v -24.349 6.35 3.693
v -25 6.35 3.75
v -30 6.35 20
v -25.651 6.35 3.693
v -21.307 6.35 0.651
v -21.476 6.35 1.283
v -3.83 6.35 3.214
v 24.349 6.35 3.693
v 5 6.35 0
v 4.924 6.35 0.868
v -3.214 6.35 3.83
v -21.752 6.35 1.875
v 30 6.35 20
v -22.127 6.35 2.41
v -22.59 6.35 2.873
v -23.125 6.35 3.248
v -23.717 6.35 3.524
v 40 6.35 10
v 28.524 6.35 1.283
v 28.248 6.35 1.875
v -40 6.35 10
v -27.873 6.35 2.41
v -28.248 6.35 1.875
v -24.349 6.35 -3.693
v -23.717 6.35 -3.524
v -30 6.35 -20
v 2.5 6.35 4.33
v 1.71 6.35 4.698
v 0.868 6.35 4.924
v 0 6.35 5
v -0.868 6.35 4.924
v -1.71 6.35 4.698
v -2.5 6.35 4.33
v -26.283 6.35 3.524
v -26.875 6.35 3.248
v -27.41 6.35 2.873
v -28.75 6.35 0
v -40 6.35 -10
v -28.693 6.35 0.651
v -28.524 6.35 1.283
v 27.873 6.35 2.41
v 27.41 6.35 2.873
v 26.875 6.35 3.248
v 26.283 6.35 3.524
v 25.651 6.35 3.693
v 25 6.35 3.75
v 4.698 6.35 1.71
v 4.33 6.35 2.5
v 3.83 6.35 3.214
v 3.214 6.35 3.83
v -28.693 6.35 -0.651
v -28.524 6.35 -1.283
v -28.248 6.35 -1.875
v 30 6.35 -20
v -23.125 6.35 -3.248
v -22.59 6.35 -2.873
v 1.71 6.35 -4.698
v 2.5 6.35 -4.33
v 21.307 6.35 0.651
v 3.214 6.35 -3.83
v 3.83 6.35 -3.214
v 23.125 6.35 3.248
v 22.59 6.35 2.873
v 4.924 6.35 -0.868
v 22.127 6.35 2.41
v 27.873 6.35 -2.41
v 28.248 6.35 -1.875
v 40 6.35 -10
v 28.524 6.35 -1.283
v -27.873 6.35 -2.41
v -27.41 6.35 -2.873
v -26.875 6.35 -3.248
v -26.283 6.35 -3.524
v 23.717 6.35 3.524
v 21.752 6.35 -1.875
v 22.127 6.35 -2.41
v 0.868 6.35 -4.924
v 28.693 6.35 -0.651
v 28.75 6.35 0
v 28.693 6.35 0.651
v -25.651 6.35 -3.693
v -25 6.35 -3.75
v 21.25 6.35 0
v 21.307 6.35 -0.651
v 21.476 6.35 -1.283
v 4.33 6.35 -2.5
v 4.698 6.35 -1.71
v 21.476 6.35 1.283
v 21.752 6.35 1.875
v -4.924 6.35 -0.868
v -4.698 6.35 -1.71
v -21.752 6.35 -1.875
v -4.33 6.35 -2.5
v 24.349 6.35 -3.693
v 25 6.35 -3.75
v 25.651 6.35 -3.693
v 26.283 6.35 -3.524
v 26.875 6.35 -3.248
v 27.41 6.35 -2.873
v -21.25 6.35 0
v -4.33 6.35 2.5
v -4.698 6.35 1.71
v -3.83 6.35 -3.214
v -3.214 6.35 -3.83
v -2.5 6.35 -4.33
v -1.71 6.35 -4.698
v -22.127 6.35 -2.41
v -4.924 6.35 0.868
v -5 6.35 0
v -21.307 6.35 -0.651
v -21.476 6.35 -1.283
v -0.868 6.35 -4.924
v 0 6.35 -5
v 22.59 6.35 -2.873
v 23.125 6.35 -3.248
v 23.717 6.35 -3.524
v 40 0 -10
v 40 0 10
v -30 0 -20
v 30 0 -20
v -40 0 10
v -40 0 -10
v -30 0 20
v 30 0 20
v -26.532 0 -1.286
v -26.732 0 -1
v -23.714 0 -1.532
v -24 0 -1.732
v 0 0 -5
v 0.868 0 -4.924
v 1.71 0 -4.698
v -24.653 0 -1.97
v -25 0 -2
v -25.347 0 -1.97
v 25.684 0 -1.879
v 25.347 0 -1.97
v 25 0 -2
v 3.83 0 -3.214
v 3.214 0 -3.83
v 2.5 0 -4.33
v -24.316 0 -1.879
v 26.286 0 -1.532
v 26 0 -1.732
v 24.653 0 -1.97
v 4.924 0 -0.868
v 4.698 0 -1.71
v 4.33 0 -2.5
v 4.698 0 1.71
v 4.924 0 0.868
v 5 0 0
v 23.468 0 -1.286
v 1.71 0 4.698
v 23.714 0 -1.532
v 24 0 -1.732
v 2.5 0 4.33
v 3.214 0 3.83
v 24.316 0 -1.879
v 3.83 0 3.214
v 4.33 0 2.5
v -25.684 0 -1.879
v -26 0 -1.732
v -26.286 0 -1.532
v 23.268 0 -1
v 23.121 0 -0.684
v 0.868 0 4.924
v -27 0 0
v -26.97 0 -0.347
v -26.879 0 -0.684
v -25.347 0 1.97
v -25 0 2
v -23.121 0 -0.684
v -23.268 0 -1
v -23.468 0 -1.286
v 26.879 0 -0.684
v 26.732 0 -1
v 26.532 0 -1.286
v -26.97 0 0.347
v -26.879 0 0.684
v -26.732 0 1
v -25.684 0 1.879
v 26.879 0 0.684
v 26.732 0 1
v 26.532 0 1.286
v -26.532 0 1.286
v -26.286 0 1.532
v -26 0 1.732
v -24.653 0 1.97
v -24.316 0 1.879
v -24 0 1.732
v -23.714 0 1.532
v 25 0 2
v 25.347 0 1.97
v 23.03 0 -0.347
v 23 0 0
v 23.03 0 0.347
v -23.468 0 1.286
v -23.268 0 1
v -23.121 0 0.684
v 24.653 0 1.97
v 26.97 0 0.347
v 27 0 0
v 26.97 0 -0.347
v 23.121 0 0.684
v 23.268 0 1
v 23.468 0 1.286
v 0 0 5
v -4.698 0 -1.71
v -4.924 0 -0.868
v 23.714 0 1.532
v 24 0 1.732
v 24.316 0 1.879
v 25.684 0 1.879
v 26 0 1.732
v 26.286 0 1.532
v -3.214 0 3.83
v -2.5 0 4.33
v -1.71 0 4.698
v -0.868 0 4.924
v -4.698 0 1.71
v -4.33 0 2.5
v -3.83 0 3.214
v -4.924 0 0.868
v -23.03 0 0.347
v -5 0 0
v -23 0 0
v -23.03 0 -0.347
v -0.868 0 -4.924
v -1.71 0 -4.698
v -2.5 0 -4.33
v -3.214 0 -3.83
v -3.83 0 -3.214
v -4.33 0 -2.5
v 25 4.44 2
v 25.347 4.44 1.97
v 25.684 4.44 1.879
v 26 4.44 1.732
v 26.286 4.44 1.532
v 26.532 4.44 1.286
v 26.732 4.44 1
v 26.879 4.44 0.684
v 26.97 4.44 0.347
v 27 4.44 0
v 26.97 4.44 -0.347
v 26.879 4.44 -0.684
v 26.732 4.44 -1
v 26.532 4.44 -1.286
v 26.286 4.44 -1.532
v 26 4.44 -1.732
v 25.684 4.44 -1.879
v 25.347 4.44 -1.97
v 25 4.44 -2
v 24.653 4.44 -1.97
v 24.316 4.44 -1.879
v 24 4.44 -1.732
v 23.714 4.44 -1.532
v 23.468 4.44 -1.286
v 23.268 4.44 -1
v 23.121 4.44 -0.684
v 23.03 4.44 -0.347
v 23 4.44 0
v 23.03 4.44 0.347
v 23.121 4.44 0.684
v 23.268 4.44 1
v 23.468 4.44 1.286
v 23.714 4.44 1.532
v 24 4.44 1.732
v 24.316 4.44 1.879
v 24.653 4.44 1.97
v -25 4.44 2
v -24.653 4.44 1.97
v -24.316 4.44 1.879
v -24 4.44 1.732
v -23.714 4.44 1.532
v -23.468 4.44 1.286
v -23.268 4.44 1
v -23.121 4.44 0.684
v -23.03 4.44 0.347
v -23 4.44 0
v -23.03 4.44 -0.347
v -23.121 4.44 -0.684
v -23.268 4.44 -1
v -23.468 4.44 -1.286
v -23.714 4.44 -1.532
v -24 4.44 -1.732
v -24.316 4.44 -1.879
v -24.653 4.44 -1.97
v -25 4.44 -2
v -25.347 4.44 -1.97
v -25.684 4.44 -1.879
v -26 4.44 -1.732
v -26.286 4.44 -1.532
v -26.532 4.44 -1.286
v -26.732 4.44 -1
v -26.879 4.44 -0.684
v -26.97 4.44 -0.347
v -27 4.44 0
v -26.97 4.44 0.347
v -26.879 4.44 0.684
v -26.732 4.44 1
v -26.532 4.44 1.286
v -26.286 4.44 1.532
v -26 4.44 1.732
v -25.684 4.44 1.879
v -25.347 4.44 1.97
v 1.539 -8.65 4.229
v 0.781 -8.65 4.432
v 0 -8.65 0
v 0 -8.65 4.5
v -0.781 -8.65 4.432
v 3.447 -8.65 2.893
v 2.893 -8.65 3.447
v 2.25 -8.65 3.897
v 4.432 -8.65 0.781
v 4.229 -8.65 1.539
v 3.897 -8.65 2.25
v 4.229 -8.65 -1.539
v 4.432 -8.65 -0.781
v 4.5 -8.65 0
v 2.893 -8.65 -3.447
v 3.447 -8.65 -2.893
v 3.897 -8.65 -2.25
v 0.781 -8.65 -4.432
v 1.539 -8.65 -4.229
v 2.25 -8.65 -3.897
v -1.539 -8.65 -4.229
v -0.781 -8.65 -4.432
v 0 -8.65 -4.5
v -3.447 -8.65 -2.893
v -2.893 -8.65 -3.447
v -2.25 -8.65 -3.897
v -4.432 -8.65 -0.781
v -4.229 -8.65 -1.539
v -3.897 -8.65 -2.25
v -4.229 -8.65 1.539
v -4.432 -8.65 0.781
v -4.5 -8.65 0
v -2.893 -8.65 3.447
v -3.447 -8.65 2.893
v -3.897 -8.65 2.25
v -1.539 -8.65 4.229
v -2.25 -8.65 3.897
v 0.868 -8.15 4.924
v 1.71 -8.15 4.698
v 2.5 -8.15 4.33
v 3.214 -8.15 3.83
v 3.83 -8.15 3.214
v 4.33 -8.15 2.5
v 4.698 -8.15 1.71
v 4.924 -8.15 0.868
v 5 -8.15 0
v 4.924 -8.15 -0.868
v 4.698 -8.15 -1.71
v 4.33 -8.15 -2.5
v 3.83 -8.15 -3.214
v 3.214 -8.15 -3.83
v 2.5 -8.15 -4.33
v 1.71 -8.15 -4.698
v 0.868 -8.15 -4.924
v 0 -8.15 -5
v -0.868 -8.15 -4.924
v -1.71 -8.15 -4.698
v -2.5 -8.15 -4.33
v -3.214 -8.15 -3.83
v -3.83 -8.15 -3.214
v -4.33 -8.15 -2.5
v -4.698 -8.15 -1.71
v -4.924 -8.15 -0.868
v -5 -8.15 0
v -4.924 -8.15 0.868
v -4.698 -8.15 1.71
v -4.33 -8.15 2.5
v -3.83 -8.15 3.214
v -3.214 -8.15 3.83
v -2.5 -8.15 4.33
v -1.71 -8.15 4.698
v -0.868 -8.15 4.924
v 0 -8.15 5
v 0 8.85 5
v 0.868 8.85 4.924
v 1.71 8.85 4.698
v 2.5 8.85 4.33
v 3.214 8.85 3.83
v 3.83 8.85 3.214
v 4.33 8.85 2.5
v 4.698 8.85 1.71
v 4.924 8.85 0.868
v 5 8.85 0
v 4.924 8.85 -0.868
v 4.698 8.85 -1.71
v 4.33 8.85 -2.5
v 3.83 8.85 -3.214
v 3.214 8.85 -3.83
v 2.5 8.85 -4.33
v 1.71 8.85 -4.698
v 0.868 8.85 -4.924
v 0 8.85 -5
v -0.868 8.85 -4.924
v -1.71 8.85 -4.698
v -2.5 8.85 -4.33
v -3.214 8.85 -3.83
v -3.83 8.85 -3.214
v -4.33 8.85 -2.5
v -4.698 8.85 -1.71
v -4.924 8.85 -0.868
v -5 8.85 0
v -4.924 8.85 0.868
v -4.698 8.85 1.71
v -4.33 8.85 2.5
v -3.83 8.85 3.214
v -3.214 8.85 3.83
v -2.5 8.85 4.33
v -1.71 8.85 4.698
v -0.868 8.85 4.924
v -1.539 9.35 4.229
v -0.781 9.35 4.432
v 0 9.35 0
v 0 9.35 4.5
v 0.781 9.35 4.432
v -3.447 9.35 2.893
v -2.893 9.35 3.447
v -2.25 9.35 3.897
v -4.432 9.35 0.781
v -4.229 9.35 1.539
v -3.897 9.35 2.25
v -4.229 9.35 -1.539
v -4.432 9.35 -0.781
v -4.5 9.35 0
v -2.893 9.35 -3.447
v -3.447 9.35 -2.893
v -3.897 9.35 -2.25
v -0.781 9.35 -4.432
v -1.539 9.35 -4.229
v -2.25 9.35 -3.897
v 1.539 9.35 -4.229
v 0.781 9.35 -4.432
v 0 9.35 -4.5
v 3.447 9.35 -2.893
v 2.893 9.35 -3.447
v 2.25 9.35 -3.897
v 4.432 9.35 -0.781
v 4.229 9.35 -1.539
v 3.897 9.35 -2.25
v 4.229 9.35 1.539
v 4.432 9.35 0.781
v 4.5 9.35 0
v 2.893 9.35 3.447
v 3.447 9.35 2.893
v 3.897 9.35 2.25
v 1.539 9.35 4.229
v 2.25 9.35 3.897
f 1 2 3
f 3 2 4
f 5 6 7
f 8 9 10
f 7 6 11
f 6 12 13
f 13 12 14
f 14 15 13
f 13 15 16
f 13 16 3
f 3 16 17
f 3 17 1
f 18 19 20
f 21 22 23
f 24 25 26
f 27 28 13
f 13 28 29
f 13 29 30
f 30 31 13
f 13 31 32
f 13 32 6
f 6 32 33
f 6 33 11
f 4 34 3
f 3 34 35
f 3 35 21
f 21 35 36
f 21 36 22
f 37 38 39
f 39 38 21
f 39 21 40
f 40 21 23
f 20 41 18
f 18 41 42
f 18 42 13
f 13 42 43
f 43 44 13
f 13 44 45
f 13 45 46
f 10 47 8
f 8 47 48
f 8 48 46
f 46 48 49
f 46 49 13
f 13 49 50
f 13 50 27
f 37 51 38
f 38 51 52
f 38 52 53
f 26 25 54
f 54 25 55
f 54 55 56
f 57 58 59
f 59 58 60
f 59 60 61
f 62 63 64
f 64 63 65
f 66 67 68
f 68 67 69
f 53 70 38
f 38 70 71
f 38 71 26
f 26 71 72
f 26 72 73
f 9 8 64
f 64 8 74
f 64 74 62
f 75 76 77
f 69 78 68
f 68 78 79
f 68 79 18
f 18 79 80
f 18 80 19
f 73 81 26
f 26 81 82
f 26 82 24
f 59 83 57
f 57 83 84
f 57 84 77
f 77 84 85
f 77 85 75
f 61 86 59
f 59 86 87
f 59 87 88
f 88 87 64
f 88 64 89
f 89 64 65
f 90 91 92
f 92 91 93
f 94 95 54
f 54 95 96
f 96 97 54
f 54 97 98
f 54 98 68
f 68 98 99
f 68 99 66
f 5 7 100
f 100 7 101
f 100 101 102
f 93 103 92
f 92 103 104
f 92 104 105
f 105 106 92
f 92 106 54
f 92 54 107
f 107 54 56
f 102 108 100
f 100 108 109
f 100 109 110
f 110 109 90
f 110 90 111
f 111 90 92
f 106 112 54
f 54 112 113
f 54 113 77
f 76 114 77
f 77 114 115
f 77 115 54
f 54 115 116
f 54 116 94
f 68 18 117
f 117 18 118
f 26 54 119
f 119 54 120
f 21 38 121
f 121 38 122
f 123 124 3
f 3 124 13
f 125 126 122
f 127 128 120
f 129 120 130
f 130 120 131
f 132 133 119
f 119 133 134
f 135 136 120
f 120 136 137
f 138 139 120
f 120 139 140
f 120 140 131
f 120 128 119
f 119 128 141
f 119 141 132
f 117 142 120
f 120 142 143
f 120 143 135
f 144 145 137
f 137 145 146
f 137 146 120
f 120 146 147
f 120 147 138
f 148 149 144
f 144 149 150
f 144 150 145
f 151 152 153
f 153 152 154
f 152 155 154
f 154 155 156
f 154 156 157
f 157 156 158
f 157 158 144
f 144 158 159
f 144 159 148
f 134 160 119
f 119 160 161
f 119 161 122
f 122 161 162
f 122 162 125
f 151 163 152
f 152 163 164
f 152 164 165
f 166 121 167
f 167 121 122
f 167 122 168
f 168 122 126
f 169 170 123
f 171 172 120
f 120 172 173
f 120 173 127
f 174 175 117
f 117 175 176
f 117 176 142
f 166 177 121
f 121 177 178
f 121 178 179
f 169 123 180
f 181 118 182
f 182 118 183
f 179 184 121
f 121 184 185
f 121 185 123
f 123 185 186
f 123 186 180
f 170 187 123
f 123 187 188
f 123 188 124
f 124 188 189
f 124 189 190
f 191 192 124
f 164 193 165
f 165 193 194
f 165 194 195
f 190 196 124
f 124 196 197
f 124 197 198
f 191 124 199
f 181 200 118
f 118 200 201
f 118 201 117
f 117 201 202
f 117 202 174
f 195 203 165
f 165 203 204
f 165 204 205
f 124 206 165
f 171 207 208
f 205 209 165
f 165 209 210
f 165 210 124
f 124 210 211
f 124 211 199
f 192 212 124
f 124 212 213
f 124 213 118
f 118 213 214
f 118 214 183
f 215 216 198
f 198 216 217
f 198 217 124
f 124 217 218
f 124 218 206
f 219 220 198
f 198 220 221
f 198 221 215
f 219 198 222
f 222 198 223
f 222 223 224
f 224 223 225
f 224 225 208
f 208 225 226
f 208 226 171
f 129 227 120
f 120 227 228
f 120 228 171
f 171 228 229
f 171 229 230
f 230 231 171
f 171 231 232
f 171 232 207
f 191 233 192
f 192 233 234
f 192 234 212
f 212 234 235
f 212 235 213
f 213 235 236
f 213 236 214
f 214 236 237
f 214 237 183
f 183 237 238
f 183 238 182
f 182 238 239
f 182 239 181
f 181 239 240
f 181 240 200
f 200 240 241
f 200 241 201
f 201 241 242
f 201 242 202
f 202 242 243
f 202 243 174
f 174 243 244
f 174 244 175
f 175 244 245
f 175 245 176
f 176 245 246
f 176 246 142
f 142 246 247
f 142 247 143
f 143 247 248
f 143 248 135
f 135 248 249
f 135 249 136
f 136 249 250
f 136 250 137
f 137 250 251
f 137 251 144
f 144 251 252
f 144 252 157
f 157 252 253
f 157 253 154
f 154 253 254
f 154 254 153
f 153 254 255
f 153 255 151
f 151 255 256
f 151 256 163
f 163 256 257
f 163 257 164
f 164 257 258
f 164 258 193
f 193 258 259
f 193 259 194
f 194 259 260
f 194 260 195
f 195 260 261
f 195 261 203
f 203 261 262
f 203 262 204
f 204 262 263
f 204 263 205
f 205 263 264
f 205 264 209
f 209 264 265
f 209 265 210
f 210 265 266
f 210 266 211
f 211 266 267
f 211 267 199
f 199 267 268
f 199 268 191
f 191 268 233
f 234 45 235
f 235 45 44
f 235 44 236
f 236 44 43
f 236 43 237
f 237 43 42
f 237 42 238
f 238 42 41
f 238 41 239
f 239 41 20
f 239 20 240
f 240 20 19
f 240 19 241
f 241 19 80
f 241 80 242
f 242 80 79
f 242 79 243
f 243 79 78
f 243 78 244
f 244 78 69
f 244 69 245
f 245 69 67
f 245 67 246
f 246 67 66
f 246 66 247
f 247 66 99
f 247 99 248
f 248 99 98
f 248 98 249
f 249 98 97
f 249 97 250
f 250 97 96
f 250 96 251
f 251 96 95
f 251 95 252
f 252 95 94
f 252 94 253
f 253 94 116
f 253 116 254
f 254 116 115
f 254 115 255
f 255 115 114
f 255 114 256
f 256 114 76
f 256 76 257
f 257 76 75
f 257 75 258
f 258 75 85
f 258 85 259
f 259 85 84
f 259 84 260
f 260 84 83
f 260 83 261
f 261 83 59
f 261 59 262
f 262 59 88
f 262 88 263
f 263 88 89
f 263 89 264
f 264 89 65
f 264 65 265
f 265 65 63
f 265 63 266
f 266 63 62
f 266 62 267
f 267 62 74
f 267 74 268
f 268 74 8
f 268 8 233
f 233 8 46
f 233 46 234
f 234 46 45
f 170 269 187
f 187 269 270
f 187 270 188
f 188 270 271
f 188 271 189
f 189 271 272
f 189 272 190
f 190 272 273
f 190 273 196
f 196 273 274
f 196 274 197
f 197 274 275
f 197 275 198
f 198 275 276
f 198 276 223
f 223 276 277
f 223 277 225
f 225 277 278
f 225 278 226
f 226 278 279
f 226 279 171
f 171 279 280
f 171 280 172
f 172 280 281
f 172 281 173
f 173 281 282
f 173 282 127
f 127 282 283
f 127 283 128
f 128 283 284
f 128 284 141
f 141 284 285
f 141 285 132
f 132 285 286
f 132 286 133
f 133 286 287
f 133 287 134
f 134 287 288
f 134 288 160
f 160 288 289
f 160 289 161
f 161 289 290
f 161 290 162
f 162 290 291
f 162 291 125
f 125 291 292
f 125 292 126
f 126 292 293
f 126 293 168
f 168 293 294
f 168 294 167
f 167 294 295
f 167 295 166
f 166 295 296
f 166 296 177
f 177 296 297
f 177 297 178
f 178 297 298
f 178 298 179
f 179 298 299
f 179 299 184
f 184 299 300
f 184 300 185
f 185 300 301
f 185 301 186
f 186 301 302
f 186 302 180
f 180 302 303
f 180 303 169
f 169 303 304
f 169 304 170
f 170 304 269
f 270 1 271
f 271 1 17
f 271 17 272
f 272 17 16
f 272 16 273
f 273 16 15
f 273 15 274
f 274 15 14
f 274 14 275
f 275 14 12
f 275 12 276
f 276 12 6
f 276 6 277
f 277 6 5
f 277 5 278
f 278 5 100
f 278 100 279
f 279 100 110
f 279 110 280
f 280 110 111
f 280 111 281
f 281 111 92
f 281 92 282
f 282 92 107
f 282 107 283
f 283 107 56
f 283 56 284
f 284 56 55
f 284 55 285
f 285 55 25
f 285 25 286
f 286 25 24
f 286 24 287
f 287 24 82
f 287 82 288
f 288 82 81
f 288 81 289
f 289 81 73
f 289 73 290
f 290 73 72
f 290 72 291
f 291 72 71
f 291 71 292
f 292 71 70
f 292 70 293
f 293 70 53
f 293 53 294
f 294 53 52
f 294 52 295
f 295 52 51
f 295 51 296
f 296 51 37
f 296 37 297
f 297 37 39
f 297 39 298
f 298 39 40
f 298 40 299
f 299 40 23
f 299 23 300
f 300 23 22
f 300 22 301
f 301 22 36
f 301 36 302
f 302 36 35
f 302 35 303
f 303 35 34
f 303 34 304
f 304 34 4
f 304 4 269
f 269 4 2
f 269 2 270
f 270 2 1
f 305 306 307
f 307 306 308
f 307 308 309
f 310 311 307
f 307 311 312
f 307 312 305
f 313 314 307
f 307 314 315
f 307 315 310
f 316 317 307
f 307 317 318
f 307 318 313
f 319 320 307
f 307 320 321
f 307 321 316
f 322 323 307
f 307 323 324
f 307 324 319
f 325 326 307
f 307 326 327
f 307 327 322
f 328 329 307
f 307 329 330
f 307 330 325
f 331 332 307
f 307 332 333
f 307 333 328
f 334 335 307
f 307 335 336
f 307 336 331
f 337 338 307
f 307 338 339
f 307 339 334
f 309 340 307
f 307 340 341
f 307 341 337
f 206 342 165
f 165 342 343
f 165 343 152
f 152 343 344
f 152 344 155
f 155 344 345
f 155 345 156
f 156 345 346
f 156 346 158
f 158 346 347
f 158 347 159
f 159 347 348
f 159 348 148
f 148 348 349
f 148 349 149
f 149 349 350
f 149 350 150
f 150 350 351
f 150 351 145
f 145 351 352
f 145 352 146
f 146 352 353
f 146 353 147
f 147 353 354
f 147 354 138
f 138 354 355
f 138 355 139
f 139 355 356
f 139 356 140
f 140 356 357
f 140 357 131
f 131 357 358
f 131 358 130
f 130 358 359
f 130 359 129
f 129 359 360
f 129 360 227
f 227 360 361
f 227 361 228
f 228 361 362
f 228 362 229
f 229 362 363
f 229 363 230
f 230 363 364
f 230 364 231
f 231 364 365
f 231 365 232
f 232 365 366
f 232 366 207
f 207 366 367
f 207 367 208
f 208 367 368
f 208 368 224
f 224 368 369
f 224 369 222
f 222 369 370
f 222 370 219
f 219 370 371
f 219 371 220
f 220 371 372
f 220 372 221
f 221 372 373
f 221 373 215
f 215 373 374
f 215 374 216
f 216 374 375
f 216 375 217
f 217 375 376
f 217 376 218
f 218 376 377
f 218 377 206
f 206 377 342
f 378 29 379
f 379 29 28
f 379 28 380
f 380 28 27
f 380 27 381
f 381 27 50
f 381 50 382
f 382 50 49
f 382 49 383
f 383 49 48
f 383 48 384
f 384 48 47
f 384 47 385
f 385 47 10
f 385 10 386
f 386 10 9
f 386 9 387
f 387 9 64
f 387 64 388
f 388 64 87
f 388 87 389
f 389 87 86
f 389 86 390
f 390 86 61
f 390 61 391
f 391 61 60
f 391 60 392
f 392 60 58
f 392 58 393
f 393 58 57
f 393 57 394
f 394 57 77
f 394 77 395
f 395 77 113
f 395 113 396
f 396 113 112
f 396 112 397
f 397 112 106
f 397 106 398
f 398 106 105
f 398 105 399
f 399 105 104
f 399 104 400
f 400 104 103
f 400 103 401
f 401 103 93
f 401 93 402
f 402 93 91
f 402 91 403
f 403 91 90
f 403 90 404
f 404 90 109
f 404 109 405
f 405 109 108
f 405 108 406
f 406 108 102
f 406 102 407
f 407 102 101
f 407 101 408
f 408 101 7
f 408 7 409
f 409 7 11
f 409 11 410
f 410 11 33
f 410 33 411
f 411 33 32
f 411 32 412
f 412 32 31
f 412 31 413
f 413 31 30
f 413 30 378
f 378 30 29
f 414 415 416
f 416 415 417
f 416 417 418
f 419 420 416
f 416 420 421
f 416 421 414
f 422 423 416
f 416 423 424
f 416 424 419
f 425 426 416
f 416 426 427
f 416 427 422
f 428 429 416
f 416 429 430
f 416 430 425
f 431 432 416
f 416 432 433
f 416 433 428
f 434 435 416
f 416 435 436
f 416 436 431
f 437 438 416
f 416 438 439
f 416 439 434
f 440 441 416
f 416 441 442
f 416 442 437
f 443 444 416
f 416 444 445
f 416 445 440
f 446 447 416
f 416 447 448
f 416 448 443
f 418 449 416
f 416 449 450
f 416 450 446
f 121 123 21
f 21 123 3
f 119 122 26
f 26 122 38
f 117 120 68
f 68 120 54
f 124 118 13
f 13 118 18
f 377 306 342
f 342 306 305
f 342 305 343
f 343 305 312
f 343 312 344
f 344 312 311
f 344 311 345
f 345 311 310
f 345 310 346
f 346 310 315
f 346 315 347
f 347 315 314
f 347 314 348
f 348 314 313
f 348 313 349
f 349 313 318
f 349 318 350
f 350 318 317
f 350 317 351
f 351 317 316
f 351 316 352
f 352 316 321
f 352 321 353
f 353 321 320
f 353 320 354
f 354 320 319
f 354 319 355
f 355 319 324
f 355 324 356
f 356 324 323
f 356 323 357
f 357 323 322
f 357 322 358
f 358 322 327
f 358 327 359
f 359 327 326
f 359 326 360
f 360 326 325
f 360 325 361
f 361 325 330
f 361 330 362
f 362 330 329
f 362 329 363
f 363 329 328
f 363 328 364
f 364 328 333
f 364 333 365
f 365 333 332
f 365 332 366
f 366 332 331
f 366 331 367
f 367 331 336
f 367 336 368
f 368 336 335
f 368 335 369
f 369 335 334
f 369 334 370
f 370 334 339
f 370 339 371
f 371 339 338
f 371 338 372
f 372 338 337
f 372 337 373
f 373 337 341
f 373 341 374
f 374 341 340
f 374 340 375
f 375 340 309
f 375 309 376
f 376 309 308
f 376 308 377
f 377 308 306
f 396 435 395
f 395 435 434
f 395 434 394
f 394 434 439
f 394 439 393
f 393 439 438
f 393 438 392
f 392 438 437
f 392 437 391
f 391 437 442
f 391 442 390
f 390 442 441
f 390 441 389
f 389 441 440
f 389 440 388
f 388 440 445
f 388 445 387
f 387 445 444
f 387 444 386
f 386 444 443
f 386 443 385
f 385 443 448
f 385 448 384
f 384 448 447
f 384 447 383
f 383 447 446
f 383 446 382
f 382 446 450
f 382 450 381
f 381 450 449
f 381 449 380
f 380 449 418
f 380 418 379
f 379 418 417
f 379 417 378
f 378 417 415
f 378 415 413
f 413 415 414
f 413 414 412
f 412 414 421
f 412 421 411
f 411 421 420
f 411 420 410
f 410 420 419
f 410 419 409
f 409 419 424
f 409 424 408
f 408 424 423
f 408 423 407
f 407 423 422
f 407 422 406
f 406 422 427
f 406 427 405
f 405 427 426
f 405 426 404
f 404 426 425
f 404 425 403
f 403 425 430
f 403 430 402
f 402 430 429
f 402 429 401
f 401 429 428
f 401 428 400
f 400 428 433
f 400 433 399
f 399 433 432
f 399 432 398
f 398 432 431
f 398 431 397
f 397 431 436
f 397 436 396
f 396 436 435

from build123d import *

# Parameters (mm, degrees)
SKETCH1_W                                       = 80
SKETCH1_H                                       = 40
BOSS_EXTRUDE1_DEPTH                             = 6.35
CSK_FOR_M3_FLAT_HEAD_MACHINE_SCREW1_D           = 4
CSK_FOR_M3_FLAT_HEAD_MACHINE_SCREW1_CSINK_D     = 7.5
CSK_FOR_M3_FLAT_HEAD_MACHINE_SCREW1_CSINK_ANGLE = 85
BOSS_EXTRUDE2_DEPTH                             = 3
BOSS_EXTRUDE2_DEPTH_BACK                        = 15
SKETCH8_R                                       = 5
CHAMFER1_SIZE                                   = 10
CHAMFER2_SIZE                                   = 0.5


with BuildPart() as part:
    # Sketch1 → Boss-Extrude1 (new body)
    with BuildSketch(Plane(origin=(0, 0, 0), x_dir=(1, 0, 0), z_dir=(0, 1, 0))):
        Rectangle(SKETCH1_W, SKETCH1_H)
    extrude(amount=BOSS_EXTRUDE1_DEPTH)

    # CSK for M3 Flat Head Machine Screw1 (through all)
    with Locations(Plane(origin=(0, 6.35, 0), x_dir=(1, 0, 0), z_dir=(0, 1, 0))):
        with Locations((-25, 0), (25, 0)):
            CounterSinkHole(CSK_FOR_M3_FLAT_HEAD_MACHINE_SCREW1_D / 2, CSK_FOR_M3_FLAT_HEAD_MACHINE_SCREW1_CSINK_D / 2, counter_sink_angle=CSK_FOR_M3_FLAT_HEAD_MACHINE_SCREW1_CSINK_ANGLE)

    # Sketch8 → Boss-Extrude2 (add, two sides: drawn at the far end of the back side and taken through both)
    with BuildSketch(Plane(origin=(0, 6.35, 0), x_dir=(1, 0, 0), z_dir=(0, 1, 0)).offset(-BOSS_EXTRUDE2_DEPTH_BACK)):
        with Locations(Location((0, 0, 0), (0, 0, 270))):
            Circle(SKETCH8_R)
    extrude(amount=BOSS_EXTRUDE2_DEPTH + BOSS_EXTRUDE2_DEPTH_BACK)

    # Chamfer1
    chamfer1_edges = [part.edges().sort_by_distance(p)[0] for p in [
        (40, 3.175, 20),
        (-40, 3.175, 20),
        (-40, 3.175, -20),
        (40, 3.175, -20),
    ]]
    chamfer(chamfer1_edges, length=CHAMFER1_SIZE)

    # Chamfer2
    chamfer2_edges = [part.edges().sort_by_distance(p)[0] for p in [
        (0, -8.65, -5),
        (0, 9.35, -5),
    ]]
    chamfer(chamfer2_edges, length=CHAMFER2_SIZE)


solid = part.part
